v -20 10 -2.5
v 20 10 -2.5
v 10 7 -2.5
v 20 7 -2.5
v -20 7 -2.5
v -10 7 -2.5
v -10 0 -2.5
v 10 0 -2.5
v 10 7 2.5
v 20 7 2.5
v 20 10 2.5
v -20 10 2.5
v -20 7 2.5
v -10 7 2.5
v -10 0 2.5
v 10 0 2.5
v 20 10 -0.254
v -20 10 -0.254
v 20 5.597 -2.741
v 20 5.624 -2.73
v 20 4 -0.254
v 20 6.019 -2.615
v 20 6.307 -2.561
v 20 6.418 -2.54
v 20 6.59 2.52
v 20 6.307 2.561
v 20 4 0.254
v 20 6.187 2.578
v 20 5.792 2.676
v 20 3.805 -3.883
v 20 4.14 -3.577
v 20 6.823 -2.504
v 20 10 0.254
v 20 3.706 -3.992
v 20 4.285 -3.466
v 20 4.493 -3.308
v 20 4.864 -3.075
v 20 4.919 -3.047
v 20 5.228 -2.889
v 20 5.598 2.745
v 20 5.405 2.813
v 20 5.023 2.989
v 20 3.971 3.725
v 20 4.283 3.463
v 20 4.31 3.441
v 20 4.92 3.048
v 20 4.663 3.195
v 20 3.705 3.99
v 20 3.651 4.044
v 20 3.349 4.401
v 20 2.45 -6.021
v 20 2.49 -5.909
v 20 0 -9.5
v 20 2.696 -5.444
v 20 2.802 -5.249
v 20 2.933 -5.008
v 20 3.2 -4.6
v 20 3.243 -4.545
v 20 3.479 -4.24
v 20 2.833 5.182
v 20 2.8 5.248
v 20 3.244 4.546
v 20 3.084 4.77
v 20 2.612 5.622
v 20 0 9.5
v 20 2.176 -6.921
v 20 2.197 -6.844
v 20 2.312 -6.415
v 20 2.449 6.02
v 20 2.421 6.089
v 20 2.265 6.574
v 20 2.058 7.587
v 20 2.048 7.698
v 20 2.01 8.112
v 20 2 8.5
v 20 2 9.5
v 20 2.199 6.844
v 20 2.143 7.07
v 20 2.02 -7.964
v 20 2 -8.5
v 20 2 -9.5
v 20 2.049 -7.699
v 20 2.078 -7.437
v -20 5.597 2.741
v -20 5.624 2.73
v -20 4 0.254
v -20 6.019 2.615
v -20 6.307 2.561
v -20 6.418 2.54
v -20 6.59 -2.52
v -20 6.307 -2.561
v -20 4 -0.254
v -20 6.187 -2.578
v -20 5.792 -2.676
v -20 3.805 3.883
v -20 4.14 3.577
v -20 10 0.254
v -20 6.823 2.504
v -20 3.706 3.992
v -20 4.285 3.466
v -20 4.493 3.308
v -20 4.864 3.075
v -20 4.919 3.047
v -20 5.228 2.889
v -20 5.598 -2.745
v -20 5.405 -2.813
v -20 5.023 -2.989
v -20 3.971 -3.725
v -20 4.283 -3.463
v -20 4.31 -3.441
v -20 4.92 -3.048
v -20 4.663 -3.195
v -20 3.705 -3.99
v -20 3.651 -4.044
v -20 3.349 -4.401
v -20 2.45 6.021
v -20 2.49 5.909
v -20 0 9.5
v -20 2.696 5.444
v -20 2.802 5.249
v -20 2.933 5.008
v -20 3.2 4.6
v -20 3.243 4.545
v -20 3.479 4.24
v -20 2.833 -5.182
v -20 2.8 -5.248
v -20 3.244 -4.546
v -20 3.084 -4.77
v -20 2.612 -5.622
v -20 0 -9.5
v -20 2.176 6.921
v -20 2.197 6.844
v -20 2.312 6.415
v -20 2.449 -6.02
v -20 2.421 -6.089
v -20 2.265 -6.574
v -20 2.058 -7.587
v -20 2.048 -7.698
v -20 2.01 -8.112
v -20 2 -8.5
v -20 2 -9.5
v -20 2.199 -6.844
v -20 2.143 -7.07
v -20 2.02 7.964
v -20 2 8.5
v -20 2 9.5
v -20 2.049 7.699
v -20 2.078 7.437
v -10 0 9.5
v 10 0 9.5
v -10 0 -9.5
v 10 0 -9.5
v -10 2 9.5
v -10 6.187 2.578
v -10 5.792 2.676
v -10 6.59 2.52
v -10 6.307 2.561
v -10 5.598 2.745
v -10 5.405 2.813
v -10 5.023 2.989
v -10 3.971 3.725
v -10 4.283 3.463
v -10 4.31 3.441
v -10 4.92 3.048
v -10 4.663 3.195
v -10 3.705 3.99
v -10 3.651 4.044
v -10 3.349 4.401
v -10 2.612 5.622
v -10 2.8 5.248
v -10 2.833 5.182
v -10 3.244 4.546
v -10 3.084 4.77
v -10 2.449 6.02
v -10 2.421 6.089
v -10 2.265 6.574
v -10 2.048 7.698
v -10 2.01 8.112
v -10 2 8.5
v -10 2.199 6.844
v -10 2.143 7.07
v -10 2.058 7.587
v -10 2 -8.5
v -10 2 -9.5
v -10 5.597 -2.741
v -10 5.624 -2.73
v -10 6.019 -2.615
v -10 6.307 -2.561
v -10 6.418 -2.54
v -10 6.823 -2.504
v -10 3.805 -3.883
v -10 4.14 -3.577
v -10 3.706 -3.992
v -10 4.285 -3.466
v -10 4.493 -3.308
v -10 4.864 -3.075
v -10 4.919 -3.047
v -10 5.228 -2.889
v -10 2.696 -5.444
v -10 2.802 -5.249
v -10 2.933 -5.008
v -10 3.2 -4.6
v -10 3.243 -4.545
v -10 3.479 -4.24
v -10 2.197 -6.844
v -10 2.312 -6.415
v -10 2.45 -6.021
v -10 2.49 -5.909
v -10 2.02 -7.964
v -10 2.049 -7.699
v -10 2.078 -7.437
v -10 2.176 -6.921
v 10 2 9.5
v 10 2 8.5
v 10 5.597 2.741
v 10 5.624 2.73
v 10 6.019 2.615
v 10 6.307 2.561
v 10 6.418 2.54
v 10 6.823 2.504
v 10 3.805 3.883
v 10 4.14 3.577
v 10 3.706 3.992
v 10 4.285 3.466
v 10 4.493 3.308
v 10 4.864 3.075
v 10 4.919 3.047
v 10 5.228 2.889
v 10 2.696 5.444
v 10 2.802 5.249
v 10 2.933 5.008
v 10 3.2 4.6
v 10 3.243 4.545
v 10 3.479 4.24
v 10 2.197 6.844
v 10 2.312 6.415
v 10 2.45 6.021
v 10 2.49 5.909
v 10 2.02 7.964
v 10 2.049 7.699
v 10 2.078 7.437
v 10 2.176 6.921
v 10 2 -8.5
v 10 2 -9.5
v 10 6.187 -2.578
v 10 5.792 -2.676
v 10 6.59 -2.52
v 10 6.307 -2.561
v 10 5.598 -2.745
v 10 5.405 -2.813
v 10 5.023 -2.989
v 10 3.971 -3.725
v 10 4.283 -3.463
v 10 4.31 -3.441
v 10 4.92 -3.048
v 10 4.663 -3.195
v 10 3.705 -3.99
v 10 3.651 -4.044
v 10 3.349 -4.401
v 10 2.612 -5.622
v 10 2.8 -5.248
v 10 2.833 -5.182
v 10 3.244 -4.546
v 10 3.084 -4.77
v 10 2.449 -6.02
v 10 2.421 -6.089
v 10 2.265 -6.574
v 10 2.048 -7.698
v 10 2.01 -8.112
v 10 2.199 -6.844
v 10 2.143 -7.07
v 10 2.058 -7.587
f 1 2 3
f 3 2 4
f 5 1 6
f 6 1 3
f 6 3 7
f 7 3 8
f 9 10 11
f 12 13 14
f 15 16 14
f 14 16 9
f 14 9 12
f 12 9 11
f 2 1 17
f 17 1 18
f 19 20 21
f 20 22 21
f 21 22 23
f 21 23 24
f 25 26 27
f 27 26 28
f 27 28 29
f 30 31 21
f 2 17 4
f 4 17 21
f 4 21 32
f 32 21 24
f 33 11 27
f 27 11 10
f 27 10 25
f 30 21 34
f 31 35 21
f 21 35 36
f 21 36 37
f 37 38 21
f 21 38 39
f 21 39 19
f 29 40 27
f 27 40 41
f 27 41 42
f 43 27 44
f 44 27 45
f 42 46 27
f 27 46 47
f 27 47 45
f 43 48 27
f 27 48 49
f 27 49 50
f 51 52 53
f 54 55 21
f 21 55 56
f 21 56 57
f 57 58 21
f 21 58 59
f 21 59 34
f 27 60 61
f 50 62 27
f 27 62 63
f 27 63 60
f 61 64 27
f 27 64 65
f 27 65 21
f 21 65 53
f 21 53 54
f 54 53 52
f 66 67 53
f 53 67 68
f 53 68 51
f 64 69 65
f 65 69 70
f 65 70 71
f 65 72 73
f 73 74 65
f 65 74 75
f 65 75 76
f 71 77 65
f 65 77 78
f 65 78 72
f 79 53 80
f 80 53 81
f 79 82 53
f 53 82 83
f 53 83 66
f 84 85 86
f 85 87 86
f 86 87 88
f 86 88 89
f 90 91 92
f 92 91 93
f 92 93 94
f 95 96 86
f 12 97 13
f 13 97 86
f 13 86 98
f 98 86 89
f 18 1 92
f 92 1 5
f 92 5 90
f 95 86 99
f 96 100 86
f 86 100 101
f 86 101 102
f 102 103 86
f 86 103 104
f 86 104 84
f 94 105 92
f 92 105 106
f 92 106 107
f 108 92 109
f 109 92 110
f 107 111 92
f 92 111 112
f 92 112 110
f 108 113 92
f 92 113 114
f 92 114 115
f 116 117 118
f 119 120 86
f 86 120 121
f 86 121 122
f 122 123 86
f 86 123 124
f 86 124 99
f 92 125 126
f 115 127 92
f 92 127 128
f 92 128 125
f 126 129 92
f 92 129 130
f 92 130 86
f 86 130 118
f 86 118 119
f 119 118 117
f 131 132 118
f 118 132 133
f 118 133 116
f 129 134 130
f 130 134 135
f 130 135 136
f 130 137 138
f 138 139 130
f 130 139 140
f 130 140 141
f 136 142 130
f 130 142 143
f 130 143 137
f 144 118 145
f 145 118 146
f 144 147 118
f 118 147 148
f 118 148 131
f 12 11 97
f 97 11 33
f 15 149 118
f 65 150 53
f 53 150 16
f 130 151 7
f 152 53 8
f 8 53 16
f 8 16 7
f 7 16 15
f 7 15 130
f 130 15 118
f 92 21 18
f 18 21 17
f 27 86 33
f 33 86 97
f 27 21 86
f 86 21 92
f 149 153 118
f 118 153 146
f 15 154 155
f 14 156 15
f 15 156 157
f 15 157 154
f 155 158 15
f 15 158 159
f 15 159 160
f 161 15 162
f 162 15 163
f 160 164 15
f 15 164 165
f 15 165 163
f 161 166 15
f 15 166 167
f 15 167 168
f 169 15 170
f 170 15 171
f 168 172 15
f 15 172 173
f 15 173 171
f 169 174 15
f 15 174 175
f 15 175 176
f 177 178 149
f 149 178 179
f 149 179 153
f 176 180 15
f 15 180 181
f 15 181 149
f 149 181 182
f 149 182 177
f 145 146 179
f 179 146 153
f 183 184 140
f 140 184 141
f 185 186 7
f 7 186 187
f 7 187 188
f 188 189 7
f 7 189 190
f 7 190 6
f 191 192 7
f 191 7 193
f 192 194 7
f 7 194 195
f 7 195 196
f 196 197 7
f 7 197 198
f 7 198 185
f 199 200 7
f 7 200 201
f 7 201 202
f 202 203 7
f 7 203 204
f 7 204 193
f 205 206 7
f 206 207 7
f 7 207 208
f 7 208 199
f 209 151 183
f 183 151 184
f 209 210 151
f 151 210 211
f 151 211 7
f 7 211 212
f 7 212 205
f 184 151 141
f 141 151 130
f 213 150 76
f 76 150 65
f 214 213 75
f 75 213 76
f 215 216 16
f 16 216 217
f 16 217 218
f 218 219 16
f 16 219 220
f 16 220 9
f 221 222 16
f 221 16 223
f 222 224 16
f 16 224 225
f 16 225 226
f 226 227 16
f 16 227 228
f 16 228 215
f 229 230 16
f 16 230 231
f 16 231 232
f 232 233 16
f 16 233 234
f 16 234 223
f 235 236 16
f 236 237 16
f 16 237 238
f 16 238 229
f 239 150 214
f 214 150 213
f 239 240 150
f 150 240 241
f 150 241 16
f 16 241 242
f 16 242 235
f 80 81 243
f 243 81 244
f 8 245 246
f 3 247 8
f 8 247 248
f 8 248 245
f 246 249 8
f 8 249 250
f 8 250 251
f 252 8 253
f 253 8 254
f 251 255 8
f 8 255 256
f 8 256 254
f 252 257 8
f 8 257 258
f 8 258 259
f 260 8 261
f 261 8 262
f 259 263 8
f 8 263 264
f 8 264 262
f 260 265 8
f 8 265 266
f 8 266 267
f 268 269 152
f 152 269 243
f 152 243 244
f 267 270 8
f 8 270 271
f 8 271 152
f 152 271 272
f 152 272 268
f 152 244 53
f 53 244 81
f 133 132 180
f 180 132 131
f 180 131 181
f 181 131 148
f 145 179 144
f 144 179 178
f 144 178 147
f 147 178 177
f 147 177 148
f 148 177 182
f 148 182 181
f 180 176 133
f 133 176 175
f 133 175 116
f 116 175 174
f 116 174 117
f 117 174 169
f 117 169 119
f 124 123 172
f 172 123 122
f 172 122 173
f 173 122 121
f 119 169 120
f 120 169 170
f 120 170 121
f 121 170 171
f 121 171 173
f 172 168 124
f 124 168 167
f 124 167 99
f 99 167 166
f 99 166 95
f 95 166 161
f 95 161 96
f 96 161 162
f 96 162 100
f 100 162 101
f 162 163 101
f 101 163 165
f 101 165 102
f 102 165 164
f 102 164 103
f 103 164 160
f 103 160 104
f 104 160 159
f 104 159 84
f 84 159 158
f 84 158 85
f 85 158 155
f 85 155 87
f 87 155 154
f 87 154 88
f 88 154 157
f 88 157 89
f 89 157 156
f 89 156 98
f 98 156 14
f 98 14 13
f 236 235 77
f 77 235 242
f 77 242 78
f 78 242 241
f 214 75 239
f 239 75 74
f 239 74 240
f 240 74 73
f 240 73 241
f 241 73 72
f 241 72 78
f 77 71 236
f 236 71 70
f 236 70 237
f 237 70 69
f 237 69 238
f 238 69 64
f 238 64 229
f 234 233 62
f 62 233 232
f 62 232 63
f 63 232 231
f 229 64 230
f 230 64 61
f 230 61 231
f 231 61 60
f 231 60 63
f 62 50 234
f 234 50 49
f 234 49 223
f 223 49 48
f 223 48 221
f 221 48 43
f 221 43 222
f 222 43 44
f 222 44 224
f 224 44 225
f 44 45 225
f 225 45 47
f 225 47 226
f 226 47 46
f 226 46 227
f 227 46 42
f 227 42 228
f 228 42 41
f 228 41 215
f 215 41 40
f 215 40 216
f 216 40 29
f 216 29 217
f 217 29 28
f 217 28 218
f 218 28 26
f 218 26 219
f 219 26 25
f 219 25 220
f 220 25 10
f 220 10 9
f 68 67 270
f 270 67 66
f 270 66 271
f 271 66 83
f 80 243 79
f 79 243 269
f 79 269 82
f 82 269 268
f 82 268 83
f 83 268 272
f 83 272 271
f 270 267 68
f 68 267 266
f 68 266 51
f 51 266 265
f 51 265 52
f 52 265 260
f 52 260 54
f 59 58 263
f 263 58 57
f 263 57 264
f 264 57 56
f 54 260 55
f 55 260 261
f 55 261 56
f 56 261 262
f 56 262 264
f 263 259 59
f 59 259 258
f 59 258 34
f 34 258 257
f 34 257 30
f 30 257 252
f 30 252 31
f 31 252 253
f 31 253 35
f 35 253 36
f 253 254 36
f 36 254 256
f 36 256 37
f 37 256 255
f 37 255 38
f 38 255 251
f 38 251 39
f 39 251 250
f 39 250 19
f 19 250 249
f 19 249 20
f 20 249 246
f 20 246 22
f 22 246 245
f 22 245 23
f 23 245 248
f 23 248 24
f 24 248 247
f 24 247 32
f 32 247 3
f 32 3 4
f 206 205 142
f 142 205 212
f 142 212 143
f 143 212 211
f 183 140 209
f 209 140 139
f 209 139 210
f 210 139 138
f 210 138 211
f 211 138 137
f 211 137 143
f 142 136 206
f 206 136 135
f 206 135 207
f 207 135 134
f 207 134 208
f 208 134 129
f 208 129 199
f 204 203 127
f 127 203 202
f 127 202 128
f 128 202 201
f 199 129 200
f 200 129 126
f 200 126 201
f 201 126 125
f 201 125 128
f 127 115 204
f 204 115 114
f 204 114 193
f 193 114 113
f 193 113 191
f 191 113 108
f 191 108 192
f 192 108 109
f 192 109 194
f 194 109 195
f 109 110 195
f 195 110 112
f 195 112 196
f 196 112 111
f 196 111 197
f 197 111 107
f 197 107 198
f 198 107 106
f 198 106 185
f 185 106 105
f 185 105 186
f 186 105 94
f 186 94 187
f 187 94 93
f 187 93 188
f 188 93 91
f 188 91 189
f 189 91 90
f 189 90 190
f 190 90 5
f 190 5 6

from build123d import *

# Parameters (mm, degrees)
ESQUISSE1_W             = 40
ESQUISSE1_H             = 5
BOSS_EXTRU_1_DEPTH      = 10
ESQUISSE2_W             = 40
ESQUISSE2_H             = 0.508359338
ENL_V_MAT_EXTRU_1_DEPTH = 6
BOSS_EXTRU_2_START      = -12
ESQUISSE3_W             = 10
ESQUISSE3_H             = 2
BOSS_EXTRU_2_DEPTH      = 19
CONG_1_SIZE             = 6
CONG_1_SIZE_2           = 5
CONG_2_SIZE             = 6
CONG_2_SIZE_2           = 5
CONG_4_SIZE             = 6
CONG_4_SIZE_2           = 5
CONG_5_SIZE             = 6
CONG_5_SIZE_2           = 5


with BuildPart() as part:
    # Esquisse1 → Boss.-Extru.1 (new body)
    with BuildSketch(Plane(origin=(0, 0, 0), x_dir=(1, 0, 0), z_dir=(0, 1, 0))):
        Rectangle(ESQUISSE1_W, ESQUISSE1_H)
    extrude(amount=BOSS_EXTRU_1_DEPTH)

    # Esquisse2 → Enlèv. mat.-Extru.1 (cut)
    with BuildSketch(Plane(origin=(0, 10, 0), x_dir=(1, 0, 0), z_dir=(0, 1, 0))):
        Rectangle(ESQUISSE2_W, ESQUISSE2_H)
    extrude(amount=-ENL_V_MAT_EXTRU_1_DEPTH, mode=Mode.SUBTRACT)

    # Esquisse3 → Boss.-Extru.2 (add)
    with BuildSketch(Plane.XY.offset(2.5).offset(BOSS_EXTRU_2_START)):
        with Locations((-15, 1)):
            Rectangle(ESQUISSE3_W, ESQUISSE3_H)
    boss_extru_2 = extrude(amount=BOSS_EXTRU_2_DEPTH)

    # Symétrie1: Boss.-Extru.2 across plane
    add(boss_extru_2.mirror(Plane(origin=(0, 0, 0), x_dir=(0, 0, 1), z_dir=(1, 0, 0))))

    # Congé1
    # an asymmetric fillet: 6, 5 mm, written as the material it adds along each edge
    with BuildSketch(Plane(origin=(-20, 2, 2.5), x_dir=(0, 0, 1), z_dir=(1, 0, 0))) as cong_1_piece_1:
        with BuildLine():
            Bezier((CONG_1_SIZE, 0), (0, 0), (0, -CONG_1_SIZE_2), weights=[1, 0.707106781, 1])
            Line((0, -CONG_1_SIZE_2), (0, 0))
            Line((0, 0), (CONG_1_SIZE, 0))
        make_face()
    extrude(amount=10)

    # Congé2
    # an asymmetric fillet: 6, 5 mm, written as the material it adds along each edge
    with BuildSketch(Plane(origin=(20, 2, 2.5), x_dir=(0, 0, 1), z_dir=(-1, 0, 0))) as cong_2_piece_1:
        with BuildLine():
            Bezier((CONG_2_SIZE, 0), (0, 0), (0, CONG_2_SIZE_2), weights=[1, 0.707106781, 1])
            Line((0, CONG_2_SIZE_2), (0, 0))
            Line((0, 0), (CONG_2_SIZE, 0))
        make_face()
    extrude(amount=10)

    # Congé4
    # an asymmetric fillet: 6, 5 mm, written as the material it adds along each edge
    with BuildSketch(Plane(origin=(10, 2, -2.5), x_dir=(0, 0, -1), z_dir=(1, 0, 0))) as cong_4_piece_1:
        with BuildLine():
            Bezier((CONG_4_SIZE, 0), (0, 0), (0, CONG_4_SIZE_2), weights=[1, 0.707106781, 1])
            Line((0, CONG_4_SIZE_2), (0, 0))
            Line((0, 0), (CONG_4_SIZE, 0))
        make_face()
    extrude(amount=10)

    # Congé5
    # an asymmetric fillet: 6, 5 mm, written as the material it adds along each edge
    with BuildSketch(Plane(origin=(-10, 2, -2.5), x_dir=(0, 0, -1), z_dir=(-1, 0, 0))) as cong_5_piece_1:
        with BuildLine():
            Bezier((CONG_5_SIZE, 0), (0, 0), (0, -CONG_5_SIZE_2), weights=[1, 0.707106781, 1])
            Line((0, -CONG_5_SIZE_2), (0, 0))
            Line((0, 0), (CONG_5_SIZE, 0))
        make_face()
    extrude(amount=10)


solid = part.part
